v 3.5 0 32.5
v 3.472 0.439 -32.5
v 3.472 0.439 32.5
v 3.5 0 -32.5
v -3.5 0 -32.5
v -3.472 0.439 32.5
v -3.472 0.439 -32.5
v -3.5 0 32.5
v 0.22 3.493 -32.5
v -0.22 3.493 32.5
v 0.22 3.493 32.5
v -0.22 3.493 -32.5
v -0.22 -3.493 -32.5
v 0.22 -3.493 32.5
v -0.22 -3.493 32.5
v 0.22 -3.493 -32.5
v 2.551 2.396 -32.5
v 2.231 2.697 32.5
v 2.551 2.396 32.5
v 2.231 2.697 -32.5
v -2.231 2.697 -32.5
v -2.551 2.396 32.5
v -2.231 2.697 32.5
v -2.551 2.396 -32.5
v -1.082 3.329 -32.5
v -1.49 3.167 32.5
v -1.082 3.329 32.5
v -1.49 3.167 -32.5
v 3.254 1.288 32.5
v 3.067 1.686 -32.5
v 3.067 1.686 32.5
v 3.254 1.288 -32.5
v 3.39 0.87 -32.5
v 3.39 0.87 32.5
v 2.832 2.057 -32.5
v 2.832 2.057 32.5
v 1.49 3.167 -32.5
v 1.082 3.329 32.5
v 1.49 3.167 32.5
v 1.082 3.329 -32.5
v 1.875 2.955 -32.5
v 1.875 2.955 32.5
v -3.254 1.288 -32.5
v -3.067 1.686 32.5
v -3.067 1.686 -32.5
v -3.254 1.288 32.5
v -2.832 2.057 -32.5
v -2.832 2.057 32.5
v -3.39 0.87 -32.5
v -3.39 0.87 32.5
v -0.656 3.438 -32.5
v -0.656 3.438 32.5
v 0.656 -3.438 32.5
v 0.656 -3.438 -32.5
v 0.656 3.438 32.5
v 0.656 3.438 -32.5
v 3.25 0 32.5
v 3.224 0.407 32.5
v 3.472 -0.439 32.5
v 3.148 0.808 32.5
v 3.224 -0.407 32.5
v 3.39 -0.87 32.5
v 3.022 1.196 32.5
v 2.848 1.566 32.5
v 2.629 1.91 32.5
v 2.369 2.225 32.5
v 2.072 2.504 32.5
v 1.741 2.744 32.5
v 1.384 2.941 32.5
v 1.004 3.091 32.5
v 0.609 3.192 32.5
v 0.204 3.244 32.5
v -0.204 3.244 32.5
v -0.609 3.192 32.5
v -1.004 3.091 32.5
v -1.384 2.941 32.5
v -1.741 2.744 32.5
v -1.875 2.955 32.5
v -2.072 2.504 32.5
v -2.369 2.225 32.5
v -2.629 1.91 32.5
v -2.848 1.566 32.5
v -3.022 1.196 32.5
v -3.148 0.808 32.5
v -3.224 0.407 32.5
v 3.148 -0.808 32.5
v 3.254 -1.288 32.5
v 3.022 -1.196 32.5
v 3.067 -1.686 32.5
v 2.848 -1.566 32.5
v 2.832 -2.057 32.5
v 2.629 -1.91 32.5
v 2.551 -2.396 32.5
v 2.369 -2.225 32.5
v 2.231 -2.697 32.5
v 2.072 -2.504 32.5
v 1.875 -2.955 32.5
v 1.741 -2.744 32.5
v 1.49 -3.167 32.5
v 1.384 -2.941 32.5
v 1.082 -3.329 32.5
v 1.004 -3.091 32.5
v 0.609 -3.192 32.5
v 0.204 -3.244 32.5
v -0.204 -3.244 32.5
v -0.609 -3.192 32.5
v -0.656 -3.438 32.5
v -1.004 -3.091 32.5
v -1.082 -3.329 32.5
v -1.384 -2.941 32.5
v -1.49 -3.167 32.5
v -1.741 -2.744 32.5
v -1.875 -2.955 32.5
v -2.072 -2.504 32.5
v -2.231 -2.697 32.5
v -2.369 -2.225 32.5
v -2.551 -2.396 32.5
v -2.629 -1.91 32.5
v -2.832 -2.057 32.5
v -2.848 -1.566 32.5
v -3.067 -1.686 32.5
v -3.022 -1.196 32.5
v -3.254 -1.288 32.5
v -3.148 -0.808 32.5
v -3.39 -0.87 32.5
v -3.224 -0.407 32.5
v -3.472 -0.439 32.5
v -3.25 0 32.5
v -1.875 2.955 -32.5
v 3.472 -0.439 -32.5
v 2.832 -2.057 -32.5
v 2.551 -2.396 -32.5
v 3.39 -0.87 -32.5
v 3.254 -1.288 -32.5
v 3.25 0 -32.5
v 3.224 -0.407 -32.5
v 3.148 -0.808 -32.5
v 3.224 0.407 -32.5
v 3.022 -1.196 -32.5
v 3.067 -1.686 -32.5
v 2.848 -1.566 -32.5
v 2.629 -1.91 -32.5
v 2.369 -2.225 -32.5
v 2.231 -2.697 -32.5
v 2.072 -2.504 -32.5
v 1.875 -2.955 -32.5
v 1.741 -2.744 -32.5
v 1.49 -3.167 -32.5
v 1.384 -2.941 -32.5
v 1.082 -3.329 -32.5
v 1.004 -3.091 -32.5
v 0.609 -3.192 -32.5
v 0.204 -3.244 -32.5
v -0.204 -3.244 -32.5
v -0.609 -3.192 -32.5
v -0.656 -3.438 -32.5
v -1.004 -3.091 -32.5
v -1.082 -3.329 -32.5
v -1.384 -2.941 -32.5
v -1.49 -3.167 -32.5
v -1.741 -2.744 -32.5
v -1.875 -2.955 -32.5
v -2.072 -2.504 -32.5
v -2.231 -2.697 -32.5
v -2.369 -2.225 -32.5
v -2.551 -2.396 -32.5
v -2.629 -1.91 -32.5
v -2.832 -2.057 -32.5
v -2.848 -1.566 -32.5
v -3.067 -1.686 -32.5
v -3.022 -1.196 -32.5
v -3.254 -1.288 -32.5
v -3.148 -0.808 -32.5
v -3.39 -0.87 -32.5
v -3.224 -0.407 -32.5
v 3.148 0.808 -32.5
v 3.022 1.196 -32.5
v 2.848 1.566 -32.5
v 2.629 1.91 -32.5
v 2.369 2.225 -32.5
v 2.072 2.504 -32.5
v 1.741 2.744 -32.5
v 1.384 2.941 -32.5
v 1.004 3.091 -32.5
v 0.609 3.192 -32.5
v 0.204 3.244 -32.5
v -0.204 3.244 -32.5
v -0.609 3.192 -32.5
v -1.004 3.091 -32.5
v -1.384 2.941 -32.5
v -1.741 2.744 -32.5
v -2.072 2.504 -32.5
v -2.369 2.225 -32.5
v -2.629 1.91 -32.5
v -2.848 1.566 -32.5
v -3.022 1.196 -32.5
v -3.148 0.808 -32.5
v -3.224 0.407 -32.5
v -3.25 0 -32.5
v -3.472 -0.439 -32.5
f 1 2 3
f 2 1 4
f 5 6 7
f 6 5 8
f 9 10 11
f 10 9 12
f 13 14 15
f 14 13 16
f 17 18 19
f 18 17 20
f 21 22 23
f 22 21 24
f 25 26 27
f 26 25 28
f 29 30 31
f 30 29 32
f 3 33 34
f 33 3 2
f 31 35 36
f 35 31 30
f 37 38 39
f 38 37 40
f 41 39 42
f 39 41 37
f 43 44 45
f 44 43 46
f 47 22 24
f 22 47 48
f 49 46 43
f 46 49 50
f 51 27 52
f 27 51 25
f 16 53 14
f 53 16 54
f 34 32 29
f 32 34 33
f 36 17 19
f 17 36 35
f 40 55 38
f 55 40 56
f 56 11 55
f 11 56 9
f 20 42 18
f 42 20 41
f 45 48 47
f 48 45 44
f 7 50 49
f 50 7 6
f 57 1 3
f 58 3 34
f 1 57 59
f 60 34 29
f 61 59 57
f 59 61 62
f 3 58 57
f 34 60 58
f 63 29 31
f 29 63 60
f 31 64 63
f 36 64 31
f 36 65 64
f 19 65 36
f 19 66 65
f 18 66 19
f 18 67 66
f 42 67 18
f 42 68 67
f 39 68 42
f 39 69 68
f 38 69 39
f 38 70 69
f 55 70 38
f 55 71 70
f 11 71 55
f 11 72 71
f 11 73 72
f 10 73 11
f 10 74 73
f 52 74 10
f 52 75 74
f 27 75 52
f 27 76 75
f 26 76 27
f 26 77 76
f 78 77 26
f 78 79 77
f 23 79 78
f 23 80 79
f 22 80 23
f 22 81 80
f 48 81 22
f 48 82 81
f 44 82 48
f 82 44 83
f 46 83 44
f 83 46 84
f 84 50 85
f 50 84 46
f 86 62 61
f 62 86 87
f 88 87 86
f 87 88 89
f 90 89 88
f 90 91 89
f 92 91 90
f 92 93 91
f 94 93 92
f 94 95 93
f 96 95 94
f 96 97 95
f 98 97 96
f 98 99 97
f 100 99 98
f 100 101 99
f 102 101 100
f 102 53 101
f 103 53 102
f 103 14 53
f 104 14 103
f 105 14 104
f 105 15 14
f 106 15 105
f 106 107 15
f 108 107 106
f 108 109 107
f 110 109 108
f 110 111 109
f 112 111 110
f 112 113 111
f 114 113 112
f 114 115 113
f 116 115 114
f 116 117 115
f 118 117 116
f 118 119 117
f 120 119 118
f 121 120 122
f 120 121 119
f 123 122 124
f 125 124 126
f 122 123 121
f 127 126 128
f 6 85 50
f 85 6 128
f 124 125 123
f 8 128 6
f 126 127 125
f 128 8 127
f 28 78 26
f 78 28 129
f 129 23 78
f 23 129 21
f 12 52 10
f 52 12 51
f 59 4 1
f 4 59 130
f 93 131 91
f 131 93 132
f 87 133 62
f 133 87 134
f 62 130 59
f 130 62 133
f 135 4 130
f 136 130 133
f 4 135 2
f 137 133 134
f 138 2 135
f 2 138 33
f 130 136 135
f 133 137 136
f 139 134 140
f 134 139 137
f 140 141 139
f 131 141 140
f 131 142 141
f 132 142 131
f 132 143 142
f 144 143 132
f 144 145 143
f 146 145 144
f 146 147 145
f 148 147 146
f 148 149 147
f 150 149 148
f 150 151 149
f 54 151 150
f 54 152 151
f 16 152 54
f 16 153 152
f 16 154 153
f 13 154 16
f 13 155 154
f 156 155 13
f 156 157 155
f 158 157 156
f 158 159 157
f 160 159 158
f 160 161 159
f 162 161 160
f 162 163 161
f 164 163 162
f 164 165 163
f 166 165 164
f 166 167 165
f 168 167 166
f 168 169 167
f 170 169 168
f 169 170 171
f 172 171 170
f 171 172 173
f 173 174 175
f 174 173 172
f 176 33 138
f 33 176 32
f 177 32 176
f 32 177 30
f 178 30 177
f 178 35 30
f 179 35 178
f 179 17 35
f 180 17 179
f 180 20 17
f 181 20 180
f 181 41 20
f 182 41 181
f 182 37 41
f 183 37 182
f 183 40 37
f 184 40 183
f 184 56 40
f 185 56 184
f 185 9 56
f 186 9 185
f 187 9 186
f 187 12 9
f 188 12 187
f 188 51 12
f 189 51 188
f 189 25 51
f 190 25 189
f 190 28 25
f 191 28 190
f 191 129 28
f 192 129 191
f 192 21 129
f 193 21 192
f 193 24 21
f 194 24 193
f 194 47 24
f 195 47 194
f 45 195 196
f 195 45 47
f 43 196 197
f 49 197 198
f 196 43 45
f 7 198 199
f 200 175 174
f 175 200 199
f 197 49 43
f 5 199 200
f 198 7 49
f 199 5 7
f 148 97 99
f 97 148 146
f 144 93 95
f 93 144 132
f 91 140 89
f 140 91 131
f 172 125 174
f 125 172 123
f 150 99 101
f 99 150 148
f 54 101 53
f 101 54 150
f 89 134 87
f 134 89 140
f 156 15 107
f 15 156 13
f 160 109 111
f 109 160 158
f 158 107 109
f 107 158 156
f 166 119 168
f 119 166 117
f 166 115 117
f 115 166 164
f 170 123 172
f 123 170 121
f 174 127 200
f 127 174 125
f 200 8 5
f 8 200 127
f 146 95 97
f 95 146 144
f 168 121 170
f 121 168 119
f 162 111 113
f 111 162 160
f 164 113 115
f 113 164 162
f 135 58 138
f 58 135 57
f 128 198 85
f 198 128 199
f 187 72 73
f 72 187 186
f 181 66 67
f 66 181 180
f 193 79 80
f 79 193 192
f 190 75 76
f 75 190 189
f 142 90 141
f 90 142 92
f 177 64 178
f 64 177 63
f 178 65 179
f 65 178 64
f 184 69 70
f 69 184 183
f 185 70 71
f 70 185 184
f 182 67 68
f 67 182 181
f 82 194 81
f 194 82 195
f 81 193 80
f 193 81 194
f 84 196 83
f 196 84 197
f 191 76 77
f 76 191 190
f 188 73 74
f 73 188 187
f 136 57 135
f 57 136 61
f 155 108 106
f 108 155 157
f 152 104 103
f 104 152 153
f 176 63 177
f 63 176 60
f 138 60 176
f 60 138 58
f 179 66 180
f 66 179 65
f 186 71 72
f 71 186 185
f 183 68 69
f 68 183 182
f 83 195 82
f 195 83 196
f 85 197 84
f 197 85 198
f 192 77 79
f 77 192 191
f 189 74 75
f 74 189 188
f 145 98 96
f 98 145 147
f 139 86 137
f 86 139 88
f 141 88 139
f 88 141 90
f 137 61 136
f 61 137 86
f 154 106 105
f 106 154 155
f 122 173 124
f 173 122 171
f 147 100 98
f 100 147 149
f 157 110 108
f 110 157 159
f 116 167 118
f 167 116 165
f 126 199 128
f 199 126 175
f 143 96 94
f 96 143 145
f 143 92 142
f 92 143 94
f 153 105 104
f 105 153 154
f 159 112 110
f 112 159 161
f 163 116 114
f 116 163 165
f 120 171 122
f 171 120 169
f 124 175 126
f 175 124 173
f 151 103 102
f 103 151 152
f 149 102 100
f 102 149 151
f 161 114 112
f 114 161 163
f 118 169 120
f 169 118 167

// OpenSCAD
$fn = 50;


difference() {
	union() {
		translate(v = [0, 0, -32.5000000000]) {
			cylinder(h = 65, r = 3.5000000000);
		}
	}
	union() {
		translate(v = [0, 0, -100.0000000000]) {
			cylinder(h = 200, r = 3.2500000000);
		}
	}
}
